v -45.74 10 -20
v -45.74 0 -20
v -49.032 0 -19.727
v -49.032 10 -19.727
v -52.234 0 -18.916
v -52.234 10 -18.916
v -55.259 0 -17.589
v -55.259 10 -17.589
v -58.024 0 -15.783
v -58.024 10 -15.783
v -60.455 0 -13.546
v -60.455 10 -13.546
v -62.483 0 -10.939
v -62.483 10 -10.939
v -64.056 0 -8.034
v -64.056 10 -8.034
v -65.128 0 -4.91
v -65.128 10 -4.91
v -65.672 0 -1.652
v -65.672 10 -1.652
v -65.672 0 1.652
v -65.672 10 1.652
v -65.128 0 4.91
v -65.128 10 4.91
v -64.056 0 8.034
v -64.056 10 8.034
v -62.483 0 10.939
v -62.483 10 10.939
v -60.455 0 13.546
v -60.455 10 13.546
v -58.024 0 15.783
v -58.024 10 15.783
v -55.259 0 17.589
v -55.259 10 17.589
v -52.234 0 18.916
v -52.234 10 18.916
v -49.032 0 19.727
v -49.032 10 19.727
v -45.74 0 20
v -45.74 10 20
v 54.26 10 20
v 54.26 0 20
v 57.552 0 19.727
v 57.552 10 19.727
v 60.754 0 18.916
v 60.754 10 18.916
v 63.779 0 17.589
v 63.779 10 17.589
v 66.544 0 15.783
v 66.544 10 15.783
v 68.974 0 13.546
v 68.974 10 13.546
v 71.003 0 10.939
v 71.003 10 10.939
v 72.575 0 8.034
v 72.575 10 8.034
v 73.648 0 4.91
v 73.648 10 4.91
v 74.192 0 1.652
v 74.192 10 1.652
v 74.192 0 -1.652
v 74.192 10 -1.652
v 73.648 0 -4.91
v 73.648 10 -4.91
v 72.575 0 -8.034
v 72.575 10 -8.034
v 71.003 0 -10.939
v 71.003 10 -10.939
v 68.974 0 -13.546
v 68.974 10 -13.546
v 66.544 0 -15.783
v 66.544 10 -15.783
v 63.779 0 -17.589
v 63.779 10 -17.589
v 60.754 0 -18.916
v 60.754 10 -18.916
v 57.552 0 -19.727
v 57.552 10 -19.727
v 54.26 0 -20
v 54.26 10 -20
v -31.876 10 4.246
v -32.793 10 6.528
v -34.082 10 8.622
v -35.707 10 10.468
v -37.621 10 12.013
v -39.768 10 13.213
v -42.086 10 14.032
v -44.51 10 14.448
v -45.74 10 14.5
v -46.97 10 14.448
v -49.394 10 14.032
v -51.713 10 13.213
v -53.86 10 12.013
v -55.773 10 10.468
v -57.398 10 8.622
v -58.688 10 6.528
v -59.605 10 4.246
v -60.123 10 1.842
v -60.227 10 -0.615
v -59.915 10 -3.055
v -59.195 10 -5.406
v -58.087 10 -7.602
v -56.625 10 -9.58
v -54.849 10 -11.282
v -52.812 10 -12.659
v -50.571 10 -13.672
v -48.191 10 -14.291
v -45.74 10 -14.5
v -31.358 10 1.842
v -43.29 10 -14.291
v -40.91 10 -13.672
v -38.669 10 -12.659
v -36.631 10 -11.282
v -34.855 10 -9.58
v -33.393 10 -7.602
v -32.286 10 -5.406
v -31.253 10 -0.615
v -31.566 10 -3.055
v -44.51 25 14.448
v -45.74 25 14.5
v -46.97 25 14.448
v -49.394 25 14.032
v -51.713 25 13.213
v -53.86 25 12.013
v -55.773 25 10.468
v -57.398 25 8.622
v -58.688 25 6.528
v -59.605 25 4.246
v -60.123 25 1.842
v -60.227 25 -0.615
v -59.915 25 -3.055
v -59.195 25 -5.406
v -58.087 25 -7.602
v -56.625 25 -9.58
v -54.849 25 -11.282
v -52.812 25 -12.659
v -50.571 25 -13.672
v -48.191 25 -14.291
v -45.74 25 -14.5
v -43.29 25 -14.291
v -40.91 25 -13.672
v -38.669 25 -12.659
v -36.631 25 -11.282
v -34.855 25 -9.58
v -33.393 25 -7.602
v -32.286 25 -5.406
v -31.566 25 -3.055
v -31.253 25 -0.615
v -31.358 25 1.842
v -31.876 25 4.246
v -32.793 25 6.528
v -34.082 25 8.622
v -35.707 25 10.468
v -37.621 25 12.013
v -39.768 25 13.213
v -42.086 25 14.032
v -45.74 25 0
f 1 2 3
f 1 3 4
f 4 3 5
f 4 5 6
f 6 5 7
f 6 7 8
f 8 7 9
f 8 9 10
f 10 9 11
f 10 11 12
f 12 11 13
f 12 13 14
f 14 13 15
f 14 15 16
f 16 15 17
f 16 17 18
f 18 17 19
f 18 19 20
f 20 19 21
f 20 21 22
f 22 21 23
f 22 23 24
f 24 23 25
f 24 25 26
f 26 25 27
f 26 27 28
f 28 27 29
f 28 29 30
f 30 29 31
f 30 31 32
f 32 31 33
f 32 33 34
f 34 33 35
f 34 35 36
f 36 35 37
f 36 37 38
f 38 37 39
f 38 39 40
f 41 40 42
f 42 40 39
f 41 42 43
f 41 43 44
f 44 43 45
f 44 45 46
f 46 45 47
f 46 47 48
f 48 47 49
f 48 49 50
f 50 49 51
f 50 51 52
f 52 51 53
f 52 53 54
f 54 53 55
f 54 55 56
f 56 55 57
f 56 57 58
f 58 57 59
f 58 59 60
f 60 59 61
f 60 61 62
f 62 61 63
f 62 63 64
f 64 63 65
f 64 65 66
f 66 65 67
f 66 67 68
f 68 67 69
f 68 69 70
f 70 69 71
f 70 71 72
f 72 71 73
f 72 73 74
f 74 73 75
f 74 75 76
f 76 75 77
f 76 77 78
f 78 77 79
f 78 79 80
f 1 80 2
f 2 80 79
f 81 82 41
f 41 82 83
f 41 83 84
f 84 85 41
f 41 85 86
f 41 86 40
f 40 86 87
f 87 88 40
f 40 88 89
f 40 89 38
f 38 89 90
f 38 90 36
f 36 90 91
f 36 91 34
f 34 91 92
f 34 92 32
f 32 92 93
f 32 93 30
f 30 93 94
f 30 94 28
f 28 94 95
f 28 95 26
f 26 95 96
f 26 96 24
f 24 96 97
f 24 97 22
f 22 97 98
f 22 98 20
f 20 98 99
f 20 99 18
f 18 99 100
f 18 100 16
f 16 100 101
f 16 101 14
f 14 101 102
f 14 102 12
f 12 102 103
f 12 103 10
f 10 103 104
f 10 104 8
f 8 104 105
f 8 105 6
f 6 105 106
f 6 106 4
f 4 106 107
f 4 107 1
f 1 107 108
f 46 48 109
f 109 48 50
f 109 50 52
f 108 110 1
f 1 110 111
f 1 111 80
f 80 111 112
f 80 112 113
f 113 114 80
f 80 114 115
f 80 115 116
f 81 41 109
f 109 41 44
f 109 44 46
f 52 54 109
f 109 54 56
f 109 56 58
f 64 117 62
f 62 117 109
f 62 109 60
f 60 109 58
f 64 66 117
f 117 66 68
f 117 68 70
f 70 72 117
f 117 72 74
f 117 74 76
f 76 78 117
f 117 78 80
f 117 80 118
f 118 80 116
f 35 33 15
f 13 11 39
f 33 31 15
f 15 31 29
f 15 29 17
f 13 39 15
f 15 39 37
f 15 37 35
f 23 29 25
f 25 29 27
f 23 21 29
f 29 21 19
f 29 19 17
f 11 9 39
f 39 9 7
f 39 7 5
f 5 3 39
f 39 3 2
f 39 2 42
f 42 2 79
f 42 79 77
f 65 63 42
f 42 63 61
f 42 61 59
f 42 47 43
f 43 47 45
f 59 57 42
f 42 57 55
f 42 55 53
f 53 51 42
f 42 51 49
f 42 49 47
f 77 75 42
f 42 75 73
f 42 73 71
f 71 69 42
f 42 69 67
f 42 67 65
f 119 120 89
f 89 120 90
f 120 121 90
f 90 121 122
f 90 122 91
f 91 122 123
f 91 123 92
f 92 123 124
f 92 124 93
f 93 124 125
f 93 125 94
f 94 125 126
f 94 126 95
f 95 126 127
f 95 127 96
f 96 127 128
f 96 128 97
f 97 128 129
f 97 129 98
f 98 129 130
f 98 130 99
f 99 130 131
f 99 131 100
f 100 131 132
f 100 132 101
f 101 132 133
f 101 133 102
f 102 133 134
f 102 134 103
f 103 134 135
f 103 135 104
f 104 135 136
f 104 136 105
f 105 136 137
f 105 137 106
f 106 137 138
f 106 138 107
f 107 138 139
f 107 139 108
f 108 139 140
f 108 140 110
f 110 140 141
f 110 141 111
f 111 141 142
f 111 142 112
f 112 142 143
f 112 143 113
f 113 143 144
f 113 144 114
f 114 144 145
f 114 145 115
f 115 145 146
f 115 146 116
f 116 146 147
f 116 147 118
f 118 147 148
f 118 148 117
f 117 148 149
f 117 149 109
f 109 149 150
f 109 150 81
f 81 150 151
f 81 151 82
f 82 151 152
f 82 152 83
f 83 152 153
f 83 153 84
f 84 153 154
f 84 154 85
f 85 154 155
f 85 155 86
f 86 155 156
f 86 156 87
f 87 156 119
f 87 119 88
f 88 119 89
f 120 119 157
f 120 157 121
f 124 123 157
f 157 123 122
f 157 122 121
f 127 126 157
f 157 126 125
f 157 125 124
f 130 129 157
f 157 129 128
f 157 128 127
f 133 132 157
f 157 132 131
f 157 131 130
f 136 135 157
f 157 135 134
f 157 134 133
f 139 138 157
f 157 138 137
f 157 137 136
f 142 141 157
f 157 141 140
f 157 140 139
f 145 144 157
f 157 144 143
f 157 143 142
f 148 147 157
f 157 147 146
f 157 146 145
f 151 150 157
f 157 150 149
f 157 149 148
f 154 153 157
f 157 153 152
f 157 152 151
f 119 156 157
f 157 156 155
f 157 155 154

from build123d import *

# Parameters (mm, degrees)
BOSS_EXTRUDE2_DEPTH = 10
SKETCH2_R           = 14.5
BOSS_EXTRUDE3_DEPTH = 15


with BuildPart() as part:
    # Sketch1 → Boss-Extrude2 (new body)
    with BuildSketch(Plane(origin=(0, 0, 0), x_dir=(1, 0, 0), z_dir=(0, 1, 0))):
        with BuildLine():
            Line((-45.740165089, 20), (54.259834911, 20))
            ThreePointArc((54.259834911, 20), (74.259834911, 0), (54.259834911, -20))
            Line((54.259834911, -20), (-45.740165089, -20))
            ThreePointArc((-45.740165089, -20), (-65.740165089, 0), (-45.740165089, 20))
        make_face()
    extrude(amount=BOSS_EXTRUDE2_DEPTH)

    # Sketch2 → Boss-Extrude3 (add)
    with BuildSketch(Plane(origin=(0, 10, 0), x_dir=(1, 0, 0), z_dir=(0, 1, 0))):
        with Locations(Location((-45.740165089, 0, 0), (0, 0, 270))):
            Circle(SKETCH2_R)
    extrude(amount=BOSS_EXTRUDE3_DEPTH)


solid = part.part
